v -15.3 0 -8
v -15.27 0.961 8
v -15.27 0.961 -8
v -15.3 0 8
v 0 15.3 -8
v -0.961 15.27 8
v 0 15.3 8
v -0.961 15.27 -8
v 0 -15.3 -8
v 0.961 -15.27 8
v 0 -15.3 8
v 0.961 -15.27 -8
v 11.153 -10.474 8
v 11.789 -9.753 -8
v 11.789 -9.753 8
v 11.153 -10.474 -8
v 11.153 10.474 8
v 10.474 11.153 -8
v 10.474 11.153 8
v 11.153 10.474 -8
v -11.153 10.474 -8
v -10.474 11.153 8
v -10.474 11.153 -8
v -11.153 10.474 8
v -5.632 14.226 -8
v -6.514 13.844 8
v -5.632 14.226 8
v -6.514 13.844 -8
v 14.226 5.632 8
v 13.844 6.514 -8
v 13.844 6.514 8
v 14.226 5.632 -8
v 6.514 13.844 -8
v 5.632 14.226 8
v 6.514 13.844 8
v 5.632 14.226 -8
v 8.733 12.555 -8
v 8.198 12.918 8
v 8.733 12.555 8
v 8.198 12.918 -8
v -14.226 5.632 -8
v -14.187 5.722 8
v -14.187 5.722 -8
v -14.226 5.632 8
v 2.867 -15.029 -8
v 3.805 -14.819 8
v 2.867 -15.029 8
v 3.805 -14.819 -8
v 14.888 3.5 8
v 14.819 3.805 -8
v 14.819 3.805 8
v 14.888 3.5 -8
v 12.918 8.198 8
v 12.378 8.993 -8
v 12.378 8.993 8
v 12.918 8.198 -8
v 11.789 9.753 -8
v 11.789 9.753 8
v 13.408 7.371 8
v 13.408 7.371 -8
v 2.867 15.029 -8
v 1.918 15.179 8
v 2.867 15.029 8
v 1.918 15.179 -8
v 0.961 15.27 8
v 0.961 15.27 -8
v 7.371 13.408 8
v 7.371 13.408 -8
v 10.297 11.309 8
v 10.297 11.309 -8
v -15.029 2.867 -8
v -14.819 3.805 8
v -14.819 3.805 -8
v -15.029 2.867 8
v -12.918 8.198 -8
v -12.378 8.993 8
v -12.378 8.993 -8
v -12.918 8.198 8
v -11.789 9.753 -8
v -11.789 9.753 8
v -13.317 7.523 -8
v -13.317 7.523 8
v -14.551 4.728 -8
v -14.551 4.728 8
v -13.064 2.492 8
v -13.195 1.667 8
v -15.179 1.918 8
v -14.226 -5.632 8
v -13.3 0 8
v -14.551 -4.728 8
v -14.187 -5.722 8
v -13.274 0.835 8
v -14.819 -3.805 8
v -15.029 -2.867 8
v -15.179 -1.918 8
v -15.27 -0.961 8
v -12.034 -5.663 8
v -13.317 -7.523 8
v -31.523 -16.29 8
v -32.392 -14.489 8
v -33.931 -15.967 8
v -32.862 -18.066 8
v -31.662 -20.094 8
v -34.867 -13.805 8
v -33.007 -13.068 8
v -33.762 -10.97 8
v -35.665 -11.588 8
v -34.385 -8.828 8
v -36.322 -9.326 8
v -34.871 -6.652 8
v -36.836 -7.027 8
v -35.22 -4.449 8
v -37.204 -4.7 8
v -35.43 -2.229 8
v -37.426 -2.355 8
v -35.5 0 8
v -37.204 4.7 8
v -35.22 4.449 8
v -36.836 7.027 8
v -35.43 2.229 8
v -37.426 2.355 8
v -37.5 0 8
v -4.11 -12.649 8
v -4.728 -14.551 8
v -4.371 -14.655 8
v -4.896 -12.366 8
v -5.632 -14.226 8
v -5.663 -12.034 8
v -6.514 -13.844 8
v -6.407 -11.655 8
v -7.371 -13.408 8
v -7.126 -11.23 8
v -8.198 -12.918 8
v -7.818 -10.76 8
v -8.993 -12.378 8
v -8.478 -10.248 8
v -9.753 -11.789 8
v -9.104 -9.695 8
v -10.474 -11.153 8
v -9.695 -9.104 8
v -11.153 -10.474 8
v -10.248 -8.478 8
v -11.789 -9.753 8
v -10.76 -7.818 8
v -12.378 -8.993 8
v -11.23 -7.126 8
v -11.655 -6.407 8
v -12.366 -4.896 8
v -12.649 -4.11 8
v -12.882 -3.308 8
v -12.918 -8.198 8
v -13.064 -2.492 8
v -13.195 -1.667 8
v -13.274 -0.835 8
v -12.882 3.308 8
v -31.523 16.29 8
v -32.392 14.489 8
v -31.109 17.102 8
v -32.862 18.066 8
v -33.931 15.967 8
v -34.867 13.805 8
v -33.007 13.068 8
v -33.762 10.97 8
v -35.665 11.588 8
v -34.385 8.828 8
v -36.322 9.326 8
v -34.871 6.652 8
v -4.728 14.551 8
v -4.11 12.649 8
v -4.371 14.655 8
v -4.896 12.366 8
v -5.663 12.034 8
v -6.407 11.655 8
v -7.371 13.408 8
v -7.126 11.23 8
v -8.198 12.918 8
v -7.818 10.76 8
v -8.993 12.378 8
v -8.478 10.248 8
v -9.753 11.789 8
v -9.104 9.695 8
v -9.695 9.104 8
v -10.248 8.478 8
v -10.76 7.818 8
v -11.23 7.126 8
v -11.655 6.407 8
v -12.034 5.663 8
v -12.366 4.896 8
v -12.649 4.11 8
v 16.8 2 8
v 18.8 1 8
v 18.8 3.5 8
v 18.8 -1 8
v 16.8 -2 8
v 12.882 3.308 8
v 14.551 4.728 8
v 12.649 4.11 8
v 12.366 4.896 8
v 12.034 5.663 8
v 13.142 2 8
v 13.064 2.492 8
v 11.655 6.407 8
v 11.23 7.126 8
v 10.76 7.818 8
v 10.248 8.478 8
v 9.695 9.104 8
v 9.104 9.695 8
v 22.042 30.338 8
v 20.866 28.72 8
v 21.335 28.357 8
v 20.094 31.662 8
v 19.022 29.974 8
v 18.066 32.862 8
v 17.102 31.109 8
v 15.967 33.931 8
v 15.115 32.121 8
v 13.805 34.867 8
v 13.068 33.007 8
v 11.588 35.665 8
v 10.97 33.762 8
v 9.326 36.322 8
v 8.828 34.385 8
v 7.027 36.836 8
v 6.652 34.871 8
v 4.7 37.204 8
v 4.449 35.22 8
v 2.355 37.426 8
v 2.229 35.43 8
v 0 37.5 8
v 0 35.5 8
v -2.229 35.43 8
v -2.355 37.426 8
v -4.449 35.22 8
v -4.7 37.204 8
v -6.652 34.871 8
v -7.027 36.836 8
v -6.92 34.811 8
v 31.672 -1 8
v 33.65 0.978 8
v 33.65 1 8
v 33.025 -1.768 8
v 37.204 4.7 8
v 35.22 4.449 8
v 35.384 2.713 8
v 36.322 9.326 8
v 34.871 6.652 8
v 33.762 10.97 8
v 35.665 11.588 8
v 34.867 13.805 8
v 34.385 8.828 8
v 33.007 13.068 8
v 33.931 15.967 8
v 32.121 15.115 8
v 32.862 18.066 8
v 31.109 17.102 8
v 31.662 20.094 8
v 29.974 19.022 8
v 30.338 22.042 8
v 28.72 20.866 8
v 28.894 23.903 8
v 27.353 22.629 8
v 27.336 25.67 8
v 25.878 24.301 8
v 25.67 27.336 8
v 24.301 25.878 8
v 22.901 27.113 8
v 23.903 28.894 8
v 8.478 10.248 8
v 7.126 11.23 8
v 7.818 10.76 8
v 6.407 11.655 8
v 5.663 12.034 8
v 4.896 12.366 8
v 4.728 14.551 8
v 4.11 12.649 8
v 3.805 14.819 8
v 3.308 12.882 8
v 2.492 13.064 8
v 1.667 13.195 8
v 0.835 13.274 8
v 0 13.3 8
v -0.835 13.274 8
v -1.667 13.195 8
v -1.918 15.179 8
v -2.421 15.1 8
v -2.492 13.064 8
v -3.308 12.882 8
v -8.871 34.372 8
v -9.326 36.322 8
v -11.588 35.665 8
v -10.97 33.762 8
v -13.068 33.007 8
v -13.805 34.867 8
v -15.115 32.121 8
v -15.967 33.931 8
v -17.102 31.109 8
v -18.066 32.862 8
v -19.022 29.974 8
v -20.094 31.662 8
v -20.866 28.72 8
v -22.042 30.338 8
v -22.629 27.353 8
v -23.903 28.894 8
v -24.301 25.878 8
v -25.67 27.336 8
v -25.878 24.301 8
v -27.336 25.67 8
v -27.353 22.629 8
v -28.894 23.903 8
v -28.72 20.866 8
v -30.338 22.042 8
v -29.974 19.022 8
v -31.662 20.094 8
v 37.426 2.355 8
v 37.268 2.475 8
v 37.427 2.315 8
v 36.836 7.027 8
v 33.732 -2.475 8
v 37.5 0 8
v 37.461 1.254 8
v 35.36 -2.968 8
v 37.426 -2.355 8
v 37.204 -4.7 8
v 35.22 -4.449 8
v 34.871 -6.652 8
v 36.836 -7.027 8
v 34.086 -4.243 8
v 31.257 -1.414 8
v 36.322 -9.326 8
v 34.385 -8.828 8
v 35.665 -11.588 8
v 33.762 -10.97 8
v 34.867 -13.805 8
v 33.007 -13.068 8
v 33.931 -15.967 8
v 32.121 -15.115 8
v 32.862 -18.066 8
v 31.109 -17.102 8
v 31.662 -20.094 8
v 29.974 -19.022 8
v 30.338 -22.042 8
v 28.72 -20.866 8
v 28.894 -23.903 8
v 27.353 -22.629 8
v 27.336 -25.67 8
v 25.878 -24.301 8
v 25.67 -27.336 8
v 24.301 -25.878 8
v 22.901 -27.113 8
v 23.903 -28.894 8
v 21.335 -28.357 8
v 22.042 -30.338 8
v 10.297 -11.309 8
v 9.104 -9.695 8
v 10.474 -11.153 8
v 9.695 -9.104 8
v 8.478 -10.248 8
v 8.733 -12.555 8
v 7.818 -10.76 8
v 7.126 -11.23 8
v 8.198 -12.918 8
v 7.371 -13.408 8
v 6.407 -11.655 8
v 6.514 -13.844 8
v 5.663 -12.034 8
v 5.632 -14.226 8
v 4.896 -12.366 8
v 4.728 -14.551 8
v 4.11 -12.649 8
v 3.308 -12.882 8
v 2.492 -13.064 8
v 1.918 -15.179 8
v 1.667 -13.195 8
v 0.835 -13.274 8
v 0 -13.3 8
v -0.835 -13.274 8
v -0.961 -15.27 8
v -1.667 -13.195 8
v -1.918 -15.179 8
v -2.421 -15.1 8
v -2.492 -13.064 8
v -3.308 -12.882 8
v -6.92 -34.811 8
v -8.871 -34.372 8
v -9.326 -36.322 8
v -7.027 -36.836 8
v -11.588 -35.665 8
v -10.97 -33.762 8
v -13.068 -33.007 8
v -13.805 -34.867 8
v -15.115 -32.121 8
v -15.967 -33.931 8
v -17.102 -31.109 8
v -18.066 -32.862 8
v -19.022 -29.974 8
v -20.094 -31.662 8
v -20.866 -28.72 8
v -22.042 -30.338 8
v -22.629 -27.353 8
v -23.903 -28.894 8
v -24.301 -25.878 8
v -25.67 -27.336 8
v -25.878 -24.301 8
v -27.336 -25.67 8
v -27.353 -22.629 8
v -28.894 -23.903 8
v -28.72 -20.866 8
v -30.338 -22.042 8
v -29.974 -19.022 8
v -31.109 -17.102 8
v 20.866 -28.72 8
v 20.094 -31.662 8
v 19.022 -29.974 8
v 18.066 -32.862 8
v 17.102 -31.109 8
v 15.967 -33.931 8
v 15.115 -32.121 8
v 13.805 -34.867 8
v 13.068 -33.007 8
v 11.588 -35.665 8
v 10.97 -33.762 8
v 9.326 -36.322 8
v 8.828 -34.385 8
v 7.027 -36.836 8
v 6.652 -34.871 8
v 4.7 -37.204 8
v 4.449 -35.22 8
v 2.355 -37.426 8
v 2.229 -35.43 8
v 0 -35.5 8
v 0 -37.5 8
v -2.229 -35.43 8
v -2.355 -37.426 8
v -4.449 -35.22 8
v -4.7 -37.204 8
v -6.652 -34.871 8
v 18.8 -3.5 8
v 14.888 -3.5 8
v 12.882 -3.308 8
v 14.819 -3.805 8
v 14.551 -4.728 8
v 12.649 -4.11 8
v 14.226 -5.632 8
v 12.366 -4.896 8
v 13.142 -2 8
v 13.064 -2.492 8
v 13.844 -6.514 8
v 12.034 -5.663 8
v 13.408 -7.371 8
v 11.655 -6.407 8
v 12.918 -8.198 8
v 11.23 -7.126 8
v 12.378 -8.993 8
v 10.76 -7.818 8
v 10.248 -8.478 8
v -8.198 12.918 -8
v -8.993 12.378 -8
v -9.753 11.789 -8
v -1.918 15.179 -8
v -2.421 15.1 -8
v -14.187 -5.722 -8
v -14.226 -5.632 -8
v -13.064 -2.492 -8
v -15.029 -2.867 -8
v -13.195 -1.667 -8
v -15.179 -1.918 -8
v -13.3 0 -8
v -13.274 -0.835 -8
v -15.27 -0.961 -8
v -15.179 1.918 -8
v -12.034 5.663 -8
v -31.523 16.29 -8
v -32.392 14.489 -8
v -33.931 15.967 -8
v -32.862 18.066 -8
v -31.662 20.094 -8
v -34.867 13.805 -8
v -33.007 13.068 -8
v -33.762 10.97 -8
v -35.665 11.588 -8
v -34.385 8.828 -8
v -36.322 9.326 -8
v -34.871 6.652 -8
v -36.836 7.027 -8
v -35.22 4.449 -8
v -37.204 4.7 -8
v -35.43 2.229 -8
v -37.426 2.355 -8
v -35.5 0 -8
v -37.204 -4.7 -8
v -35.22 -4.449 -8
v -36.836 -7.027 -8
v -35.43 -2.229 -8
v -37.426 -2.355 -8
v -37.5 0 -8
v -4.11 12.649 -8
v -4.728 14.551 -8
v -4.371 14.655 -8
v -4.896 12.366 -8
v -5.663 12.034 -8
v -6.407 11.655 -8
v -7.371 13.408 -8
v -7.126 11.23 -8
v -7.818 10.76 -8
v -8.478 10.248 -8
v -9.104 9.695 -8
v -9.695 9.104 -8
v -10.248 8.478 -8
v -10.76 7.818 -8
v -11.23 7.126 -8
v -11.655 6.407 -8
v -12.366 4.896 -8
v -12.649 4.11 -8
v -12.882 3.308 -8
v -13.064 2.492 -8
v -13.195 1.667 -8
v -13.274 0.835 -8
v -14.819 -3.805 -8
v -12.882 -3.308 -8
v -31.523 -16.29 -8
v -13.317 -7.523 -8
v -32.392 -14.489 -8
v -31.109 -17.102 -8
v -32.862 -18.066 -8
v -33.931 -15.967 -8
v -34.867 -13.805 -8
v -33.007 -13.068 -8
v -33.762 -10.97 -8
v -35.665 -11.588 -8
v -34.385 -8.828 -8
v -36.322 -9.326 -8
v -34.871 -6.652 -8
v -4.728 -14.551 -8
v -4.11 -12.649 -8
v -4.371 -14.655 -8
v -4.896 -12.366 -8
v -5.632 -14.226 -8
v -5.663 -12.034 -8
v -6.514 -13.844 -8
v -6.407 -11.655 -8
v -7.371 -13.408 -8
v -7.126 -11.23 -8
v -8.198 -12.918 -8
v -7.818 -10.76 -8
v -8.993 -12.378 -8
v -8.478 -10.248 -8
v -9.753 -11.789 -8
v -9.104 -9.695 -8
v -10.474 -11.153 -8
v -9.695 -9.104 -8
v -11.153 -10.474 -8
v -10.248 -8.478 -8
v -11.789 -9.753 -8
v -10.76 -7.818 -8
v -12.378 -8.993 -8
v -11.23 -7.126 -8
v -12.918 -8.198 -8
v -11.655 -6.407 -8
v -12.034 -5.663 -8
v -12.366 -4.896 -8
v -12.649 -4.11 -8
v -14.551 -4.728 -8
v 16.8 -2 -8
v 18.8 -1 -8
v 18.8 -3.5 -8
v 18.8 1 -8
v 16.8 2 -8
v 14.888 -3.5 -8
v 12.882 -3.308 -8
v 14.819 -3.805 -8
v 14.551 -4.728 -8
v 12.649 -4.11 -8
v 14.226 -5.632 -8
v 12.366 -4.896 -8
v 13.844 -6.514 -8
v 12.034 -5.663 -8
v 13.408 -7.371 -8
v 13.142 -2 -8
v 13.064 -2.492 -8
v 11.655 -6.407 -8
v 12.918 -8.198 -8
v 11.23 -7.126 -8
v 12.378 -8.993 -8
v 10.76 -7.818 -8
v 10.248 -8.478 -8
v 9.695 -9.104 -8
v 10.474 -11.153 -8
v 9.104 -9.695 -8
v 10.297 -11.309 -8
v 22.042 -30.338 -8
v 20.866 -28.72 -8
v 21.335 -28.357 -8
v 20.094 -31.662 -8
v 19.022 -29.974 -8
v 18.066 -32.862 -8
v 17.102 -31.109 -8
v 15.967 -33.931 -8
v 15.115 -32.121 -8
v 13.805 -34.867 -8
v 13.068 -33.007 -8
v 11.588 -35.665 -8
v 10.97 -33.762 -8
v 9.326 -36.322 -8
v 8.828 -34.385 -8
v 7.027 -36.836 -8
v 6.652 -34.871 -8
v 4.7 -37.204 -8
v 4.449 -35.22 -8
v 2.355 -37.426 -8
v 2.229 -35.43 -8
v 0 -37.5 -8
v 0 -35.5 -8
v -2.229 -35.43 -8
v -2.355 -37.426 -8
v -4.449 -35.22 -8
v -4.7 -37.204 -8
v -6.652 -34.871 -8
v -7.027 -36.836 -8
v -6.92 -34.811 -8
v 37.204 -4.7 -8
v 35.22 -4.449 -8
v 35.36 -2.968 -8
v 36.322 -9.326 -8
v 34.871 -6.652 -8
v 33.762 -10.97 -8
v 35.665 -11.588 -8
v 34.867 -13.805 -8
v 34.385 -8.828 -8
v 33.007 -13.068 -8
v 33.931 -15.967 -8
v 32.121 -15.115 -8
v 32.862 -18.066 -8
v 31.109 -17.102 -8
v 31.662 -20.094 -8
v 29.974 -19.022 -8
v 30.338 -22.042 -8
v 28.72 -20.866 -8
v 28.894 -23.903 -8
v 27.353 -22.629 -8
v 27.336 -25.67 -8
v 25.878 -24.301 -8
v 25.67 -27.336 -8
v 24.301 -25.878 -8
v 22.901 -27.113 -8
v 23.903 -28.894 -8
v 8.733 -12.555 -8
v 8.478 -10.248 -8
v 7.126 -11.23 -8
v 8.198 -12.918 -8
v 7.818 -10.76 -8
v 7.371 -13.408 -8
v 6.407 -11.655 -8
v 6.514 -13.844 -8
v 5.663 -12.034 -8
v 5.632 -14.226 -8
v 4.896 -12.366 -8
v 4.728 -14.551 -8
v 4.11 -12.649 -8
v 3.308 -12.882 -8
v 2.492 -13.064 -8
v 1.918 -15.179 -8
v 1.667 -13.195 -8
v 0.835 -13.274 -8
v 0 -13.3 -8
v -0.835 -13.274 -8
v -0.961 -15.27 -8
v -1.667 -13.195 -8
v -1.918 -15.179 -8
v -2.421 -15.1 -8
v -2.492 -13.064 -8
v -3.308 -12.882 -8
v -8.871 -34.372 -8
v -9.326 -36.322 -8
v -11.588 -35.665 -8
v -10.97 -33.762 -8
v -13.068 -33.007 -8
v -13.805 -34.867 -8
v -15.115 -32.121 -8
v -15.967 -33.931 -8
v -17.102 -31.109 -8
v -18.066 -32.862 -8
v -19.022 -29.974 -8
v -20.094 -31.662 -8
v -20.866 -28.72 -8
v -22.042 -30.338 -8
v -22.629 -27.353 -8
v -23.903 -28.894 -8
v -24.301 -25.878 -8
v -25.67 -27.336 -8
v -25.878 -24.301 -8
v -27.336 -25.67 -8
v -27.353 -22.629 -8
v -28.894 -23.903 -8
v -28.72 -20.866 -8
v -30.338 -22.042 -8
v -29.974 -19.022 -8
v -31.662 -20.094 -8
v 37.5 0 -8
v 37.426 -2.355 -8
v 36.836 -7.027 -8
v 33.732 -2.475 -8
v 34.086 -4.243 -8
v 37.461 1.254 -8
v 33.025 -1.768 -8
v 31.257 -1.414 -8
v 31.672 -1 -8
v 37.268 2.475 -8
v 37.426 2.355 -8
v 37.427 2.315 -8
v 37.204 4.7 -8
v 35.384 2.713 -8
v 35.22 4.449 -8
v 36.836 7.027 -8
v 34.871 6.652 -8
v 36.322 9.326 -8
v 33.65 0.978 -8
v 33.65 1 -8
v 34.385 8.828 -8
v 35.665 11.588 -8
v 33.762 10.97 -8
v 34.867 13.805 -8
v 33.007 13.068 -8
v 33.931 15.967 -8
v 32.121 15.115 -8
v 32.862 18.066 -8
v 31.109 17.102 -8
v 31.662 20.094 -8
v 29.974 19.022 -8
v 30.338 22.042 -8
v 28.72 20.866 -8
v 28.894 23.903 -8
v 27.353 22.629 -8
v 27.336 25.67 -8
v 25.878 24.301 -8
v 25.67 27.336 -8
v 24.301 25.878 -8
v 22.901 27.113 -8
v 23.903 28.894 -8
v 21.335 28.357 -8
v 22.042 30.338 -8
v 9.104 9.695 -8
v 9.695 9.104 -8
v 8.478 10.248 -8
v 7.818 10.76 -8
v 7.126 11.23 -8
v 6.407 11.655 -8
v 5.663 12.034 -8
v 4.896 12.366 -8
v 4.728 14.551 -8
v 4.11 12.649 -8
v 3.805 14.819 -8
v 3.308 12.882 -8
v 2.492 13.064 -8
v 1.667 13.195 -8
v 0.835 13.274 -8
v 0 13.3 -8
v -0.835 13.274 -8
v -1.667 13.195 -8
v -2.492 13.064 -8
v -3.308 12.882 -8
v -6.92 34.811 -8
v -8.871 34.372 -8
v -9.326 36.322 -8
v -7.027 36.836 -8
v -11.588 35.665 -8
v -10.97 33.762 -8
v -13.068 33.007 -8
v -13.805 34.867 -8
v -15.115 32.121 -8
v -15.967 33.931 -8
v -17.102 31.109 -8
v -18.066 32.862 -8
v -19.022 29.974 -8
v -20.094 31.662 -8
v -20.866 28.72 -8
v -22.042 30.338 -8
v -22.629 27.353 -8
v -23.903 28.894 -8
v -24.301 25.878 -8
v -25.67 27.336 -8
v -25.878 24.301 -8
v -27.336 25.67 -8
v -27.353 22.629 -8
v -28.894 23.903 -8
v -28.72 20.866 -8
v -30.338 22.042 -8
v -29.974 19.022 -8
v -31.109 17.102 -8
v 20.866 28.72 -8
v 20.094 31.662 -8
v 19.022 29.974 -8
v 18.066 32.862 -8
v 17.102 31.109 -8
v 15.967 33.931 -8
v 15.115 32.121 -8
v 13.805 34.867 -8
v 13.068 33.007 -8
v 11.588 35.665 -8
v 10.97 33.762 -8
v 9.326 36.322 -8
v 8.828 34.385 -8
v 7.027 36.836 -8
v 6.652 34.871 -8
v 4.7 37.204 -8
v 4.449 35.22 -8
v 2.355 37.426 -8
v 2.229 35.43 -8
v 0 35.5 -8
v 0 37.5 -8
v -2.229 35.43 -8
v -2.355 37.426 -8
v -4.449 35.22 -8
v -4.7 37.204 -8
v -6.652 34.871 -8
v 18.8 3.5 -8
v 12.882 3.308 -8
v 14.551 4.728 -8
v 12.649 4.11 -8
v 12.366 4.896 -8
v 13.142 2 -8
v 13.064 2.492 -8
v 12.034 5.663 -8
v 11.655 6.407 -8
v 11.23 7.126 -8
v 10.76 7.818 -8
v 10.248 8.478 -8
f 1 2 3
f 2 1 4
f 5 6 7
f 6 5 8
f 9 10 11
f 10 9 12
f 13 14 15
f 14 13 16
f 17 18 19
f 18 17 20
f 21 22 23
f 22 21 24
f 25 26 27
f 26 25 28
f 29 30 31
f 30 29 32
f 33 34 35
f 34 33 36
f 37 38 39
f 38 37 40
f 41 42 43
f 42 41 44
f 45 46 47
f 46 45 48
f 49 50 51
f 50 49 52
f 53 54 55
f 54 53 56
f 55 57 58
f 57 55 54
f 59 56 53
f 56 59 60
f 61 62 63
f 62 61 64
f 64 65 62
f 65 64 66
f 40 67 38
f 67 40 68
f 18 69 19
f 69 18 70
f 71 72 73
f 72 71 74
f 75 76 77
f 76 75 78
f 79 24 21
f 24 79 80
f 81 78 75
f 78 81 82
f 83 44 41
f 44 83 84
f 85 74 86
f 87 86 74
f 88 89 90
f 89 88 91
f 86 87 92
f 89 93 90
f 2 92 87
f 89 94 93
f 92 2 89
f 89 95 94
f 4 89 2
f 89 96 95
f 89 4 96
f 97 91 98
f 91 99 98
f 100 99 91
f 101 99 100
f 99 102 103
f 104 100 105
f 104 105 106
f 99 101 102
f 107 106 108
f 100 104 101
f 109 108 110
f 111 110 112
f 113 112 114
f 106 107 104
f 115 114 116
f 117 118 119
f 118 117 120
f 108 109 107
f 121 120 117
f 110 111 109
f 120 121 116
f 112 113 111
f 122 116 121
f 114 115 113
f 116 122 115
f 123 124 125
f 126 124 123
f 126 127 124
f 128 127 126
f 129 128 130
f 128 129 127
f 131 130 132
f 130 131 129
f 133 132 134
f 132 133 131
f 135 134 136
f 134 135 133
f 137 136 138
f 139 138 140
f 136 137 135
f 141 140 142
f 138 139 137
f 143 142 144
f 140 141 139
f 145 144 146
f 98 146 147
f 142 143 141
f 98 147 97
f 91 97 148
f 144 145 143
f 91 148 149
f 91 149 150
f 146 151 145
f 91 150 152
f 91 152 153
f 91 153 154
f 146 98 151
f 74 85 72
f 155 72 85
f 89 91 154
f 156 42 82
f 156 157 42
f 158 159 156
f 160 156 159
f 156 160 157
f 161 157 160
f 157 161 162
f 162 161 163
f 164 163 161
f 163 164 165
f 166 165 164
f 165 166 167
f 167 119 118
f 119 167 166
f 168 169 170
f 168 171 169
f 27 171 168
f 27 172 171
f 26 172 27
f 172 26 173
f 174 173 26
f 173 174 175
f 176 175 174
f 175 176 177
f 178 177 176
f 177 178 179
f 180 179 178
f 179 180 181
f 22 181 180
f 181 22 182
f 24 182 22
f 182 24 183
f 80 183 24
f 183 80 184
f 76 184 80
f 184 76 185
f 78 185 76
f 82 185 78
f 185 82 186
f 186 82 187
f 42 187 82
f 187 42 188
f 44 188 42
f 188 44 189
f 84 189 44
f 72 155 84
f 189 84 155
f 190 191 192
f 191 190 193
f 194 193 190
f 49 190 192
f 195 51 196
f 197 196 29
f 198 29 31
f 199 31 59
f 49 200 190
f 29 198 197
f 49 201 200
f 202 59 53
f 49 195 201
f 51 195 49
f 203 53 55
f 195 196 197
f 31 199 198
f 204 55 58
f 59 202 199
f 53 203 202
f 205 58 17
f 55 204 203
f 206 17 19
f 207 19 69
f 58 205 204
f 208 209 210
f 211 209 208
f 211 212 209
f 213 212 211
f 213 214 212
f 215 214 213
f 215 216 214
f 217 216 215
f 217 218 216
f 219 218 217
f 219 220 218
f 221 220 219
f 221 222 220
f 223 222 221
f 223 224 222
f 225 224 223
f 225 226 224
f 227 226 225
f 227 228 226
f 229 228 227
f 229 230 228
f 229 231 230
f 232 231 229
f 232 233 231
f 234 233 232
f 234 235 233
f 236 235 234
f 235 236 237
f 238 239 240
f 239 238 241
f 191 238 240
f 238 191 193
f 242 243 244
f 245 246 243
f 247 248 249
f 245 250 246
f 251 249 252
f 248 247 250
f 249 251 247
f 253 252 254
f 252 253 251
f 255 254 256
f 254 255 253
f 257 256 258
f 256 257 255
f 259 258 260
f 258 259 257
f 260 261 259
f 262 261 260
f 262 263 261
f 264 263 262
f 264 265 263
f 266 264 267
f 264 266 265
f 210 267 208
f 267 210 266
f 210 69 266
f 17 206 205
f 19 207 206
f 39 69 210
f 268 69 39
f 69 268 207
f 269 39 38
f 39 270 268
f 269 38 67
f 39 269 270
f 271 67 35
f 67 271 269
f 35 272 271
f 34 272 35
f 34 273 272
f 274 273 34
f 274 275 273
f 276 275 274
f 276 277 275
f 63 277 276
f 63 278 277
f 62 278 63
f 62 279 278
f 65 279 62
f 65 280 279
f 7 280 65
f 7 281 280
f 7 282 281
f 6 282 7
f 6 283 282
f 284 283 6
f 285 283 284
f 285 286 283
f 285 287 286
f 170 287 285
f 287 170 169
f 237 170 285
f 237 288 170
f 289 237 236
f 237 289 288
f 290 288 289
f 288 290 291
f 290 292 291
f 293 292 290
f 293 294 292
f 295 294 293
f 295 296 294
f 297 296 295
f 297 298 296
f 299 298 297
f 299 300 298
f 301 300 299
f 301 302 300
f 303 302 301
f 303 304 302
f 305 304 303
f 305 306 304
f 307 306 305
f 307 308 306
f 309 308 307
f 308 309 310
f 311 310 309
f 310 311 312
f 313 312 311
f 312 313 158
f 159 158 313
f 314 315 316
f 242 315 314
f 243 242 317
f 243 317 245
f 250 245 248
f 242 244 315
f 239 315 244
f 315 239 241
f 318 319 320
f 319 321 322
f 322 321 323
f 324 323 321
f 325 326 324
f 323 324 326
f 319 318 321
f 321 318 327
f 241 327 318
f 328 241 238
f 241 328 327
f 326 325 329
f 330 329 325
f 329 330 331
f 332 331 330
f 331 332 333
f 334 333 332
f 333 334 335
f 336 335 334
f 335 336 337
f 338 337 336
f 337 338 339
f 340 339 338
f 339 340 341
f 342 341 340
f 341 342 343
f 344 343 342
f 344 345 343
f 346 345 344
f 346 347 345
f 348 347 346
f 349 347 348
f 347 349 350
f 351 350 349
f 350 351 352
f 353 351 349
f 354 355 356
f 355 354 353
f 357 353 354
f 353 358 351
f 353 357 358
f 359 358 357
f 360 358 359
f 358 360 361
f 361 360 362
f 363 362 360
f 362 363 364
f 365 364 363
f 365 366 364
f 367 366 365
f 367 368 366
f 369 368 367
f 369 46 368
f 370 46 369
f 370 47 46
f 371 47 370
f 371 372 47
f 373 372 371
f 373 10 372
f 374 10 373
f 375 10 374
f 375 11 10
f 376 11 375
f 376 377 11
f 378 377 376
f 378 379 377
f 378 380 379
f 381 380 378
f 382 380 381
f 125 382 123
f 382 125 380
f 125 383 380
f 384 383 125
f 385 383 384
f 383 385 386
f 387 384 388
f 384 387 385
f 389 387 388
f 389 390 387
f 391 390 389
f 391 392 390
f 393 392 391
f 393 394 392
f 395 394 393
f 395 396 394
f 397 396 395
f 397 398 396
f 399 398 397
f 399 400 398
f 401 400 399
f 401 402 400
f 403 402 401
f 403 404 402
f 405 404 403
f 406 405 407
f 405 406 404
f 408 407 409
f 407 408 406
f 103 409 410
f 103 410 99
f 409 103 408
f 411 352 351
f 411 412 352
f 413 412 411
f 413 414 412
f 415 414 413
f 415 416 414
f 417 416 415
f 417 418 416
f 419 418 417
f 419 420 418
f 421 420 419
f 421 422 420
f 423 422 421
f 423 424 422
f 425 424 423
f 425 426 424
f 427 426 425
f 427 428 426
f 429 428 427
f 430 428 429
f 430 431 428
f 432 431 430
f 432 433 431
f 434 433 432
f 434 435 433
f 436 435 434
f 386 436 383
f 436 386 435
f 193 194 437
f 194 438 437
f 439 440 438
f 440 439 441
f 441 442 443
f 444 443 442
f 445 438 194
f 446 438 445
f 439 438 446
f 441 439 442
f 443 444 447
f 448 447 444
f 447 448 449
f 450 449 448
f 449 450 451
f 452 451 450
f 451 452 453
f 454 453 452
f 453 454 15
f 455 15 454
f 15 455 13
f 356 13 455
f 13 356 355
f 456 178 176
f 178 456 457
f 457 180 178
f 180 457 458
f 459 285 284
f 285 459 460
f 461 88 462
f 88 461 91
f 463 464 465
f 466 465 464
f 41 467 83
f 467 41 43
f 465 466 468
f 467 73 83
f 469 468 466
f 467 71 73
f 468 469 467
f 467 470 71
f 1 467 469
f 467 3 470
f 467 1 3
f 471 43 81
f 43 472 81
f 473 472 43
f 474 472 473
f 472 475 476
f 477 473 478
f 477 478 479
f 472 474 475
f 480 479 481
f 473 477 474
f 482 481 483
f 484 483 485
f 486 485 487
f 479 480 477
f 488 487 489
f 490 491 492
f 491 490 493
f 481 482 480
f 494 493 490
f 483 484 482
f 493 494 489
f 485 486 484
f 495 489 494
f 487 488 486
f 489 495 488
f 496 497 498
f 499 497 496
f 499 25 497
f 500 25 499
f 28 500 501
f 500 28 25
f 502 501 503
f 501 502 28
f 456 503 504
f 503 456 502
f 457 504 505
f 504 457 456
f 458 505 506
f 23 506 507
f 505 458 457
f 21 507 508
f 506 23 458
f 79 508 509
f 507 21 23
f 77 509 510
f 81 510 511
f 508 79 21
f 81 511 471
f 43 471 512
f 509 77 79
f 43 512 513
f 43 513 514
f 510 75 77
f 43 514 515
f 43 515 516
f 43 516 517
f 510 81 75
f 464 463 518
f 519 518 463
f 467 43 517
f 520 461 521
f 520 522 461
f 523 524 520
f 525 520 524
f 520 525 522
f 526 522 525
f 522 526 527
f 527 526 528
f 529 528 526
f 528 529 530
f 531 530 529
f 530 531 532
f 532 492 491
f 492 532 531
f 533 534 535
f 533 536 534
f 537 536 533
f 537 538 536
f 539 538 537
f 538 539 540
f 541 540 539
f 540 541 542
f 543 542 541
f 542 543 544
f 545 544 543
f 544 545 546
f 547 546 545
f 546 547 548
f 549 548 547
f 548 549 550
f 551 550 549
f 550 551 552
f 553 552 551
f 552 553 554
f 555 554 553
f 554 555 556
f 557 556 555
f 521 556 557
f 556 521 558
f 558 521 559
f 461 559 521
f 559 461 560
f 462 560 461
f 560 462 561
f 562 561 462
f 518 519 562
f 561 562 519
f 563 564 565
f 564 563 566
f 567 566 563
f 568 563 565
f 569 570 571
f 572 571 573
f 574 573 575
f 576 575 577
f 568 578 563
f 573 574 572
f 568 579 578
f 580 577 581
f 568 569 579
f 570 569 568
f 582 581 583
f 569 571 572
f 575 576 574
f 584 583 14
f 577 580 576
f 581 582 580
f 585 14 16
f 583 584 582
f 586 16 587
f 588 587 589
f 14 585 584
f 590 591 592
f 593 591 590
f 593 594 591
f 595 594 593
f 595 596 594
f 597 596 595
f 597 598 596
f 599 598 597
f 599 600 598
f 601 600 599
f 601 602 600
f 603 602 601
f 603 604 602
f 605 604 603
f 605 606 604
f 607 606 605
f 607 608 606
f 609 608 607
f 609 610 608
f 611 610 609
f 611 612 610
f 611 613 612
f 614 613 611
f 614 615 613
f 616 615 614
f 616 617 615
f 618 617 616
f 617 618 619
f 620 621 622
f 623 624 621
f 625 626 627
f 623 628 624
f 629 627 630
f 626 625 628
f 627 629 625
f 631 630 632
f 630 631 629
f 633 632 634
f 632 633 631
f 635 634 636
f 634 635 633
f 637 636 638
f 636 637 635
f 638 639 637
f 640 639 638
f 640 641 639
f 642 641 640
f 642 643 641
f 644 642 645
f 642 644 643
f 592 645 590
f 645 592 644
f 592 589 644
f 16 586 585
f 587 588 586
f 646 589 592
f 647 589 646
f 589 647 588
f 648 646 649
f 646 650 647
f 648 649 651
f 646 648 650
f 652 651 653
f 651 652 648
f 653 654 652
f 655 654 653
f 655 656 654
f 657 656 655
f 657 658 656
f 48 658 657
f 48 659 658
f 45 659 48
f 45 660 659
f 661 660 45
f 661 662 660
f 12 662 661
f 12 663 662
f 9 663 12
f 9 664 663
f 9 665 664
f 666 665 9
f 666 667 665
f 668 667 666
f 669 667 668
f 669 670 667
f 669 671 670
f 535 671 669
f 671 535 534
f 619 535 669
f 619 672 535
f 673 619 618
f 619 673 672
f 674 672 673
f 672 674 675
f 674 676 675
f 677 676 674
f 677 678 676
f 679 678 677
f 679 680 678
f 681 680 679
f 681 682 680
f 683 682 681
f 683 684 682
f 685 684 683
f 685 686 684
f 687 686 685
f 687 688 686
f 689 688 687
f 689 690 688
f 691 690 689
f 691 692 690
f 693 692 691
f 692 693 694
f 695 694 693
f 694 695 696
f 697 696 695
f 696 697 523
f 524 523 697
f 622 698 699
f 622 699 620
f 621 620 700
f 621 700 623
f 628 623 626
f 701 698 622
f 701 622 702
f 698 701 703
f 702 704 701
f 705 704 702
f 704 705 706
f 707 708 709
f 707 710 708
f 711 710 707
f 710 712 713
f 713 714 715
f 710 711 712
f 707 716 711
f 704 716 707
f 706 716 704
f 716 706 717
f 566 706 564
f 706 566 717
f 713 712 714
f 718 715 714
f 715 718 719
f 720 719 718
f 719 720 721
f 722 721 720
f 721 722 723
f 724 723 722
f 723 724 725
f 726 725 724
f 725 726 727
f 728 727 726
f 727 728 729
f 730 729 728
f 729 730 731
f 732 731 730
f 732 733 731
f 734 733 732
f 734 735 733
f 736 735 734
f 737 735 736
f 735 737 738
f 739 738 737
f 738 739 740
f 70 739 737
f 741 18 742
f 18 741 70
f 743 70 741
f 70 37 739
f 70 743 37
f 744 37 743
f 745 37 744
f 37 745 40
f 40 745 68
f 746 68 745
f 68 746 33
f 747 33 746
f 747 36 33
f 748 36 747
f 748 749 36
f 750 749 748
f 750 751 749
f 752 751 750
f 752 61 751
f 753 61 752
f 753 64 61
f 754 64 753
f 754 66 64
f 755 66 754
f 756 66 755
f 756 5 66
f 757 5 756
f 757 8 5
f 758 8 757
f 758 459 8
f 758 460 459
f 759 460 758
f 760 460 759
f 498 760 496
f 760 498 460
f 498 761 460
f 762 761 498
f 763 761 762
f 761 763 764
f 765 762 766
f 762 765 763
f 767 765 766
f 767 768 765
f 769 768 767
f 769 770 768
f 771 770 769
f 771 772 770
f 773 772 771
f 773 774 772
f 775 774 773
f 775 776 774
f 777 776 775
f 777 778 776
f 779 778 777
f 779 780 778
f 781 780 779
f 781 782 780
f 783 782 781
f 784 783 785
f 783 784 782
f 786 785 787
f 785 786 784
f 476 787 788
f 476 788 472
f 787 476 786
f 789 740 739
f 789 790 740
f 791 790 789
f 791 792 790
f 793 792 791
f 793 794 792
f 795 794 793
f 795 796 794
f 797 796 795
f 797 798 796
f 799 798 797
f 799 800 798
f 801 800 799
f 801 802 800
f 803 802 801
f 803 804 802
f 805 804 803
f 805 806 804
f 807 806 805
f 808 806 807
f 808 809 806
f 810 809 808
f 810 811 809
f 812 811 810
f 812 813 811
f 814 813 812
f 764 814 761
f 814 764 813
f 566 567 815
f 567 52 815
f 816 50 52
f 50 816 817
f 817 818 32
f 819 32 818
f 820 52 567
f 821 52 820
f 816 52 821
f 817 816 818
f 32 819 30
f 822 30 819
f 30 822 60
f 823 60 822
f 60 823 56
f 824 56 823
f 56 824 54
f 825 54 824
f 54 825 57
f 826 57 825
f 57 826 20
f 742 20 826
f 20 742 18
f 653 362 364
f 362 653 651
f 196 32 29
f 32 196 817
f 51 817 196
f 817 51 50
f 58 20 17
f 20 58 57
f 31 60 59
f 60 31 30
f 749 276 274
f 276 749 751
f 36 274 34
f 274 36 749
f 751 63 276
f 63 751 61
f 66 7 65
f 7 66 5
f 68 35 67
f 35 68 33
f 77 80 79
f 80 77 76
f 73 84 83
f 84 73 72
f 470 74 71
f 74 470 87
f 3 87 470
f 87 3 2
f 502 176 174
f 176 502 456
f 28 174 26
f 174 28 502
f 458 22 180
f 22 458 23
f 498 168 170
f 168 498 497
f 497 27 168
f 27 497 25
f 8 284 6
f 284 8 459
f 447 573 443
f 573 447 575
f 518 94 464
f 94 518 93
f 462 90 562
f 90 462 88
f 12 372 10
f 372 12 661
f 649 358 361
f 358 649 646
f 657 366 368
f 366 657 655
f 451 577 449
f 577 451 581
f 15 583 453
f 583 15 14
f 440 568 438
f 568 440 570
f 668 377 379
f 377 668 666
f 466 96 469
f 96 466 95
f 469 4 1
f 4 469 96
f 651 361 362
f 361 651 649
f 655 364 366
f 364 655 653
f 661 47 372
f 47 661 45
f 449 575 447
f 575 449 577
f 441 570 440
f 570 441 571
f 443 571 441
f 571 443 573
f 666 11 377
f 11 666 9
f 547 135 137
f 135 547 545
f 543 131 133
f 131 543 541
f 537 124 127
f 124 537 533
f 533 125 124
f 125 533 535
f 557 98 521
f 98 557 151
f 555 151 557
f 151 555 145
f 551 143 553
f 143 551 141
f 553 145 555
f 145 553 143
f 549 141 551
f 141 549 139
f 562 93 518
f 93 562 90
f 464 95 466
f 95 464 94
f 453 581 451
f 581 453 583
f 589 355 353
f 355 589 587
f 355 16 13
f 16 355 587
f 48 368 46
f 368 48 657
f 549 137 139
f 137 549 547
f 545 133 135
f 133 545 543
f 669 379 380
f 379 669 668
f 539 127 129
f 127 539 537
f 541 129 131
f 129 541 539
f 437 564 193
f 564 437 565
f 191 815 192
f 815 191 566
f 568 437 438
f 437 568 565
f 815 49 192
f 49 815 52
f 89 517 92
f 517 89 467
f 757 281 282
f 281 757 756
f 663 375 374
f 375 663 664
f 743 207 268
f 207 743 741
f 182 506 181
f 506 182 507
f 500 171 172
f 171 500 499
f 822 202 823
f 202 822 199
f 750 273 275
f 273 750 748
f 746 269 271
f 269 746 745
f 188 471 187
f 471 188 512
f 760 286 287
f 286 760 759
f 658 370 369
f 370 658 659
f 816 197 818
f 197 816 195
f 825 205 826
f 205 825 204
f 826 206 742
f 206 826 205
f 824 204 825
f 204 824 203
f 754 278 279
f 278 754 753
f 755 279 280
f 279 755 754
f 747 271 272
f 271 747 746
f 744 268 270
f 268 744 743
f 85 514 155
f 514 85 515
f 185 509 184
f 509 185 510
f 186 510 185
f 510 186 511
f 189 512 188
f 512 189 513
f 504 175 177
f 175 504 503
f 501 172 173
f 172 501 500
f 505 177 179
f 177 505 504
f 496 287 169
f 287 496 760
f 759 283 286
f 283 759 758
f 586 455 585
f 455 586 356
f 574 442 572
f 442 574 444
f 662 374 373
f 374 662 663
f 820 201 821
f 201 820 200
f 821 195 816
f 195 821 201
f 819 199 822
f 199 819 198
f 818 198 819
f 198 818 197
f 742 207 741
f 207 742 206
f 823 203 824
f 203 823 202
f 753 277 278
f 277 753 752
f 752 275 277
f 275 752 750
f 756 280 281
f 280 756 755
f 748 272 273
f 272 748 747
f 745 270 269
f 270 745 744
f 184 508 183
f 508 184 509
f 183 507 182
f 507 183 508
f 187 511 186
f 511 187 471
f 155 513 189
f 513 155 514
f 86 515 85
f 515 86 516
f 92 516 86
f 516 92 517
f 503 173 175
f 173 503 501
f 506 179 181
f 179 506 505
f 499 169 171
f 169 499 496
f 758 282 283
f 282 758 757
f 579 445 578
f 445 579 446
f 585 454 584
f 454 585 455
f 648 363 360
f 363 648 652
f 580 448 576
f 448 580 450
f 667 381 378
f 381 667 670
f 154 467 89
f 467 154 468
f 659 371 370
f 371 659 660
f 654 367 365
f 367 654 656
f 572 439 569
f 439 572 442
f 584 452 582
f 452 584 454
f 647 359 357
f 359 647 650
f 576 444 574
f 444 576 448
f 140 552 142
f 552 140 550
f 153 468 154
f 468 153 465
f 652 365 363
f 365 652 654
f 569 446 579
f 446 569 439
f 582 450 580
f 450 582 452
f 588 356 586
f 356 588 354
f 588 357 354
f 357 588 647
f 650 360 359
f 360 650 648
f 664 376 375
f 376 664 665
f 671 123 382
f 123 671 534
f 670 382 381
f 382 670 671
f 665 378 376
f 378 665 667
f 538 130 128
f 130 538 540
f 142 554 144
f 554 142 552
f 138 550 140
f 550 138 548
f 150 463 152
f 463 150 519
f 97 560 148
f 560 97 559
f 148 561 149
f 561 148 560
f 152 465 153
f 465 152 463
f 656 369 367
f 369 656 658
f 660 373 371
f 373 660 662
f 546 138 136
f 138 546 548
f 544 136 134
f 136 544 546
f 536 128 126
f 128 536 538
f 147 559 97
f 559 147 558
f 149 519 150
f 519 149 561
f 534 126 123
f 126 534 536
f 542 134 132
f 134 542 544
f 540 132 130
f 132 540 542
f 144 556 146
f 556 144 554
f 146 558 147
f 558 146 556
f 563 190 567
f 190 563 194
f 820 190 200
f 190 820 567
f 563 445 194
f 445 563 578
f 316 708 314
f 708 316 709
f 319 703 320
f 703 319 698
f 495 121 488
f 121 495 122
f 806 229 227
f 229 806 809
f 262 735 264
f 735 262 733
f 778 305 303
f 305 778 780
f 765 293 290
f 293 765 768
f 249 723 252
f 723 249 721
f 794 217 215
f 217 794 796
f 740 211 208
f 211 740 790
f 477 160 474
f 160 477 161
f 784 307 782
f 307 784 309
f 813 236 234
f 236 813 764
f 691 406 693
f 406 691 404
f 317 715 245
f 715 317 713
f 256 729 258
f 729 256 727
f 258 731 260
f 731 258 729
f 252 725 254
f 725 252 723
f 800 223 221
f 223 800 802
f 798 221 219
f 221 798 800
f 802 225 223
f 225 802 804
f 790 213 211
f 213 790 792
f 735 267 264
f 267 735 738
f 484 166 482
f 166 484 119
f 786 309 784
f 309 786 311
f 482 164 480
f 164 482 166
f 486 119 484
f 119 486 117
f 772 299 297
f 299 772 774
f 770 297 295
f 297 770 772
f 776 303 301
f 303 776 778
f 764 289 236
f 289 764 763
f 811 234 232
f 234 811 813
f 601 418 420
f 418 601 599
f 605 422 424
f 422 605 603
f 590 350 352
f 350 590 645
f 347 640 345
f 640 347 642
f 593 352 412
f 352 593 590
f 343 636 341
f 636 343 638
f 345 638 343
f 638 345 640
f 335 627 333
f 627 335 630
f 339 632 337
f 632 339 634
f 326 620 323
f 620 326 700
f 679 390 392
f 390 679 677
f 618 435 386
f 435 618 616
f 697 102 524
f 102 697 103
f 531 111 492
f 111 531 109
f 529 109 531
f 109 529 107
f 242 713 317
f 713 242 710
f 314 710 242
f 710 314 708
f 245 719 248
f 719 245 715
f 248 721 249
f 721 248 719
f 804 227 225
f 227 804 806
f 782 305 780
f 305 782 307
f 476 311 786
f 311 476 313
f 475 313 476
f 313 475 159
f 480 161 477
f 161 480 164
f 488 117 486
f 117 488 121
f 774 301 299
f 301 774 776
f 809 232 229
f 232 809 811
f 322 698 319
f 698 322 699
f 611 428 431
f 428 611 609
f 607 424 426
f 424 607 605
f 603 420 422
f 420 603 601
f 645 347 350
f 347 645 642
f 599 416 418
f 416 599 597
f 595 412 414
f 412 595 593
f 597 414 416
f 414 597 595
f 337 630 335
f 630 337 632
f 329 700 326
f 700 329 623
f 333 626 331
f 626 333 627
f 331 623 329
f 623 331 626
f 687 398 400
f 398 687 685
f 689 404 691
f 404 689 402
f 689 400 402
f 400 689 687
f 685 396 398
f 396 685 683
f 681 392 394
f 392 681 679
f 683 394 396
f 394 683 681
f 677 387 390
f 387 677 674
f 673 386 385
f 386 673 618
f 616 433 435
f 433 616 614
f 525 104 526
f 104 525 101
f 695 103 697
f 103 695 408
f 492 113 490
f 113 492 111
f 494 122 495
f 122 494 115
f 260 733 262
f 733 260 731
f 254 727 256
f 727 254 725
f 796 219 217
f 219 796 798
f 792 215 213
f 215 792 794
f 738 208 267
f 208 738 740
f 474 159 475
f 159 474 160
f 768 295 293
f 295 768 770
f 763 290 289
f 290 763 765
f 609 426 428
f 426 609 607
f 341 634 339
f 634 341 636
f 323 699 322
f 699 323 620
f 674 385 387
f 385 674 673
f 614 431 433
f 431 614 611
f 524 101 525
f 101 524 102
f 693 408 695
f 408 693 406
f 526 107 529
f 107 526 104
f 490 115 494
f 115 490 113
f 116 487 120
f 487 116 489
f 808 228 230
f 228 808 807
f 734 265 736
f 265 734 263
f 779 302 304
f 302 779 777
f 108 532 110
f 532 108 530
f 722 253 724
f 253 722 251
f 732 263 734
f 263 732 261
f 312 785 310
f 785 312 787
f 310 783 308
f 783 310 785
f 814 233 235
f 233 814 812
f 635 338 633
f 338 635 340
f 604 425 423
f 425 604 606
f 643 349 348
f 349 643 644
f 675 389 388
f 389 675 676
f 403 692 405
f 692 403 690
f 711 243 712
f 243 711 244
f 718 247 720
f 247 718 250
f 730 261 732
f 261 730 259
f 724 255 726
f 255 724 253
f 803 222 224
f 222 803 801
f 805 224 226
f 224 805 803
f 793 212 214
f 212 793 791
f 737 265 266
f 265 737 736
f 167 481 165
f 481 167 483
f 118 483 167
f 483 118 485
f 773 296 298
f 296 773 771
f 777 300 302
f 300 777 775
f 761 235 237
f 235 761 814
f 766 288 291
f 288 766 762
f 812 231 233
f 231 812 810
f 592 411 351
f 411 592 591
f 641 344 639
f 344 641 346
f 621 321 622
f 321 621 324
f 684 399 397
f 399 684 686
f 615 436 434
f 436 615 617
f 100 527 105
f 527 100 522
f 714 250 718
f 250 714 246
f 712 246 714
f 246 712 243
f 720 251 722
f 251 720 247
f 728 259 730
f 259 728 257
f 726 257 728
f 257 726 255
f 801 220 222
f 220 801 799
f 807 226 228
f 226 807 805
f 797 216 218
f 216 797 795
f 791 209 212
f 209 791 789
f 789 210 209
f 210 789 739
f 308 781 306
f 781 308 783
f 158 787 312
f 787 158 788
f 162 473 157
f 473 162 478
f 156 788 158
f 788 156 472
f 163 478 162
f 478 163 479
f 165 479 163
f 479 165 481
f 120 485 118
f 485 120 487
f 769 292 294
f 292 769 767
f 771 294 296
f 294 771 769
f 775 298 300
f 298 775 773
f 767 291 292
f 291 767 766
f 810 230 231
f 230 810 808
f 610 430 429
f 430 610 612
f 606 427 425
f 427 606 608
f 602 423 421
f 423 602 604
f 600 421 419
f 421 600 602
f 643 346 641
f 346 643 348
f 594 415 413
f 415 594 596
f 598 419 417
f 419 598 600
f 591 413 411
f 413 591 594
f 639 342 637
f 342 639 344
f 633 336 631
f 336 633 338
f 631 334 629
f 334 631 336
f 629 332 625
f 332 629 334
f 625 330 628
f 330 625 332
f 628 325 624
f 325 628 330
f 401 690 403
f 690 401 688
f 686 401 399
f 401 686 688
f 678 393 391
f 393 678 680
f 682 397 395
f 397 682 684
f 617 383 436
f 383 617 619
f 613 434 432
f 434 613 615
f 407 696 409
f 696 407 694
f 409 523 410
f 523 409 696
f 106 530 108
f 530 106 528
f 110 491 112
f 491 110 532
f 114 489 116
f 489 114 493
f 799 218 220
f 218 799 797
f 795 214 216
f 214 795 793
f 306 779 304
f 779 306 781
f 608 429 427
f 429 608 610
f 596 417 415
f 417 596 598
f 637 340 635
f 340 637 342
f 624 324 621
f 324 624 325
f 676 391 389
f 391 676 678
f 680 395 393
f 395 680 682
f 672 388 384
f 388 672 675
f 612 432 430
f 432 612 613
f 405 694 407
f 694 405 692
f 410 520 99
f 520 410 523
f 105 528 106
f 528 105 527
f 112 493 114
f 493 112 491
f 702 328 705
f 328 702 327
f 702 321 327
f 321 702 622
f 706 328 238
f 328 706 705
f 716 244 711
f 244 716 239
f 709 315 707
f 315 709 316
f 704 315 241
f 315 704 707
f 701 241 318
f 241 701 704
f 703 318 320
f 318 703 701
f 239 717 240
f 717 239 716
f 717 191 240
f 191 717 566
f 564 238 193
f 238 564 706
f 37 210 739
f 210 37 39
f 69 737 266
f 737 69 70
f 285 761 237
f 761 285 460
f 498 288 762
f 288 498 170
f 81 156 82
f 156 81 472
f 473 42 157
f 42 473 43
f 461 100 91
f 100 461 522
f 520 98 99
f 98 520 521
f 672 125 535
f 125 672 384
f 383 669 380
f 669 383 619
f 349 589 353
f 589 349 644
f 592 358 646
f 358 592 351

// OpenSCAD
time=0;

module core (outerWidth) {
	coreH = 16;
	innerWidth = 15.3;
	outerWidth = outerWidth / 2;
    $fn = 100;
    
	module cyl (R, pad = 0) {
		cylinder(r = R, h = coreH + pad, center = true);
	}

	module inner_core_shape (coreR, trans, cubeW, cubeL, pad = 0) {
		union () {
			cyl(coreR, pad);
			translate([trans, 0, 0]) {
				cube([cubeW, cubeL, coreH + pad], center = true);
			}
		}
	}

	module inner_core () {
		difference () {
			inner_core_shape(innerWidth, innerWidth + .5, 6, 7);
			inner_core_shape(innerWidth - 2, innerWidth - .5, 4, 4, 2);
		}
	}
	module clip () {
		translate([outerWidth - 2, 0, 0]) {
			rotate(45, [0, 0, 1]){
				cube([6, 1, coreH], center = true);
			}
		}
	}

	module outer_clip () {
		translate([outerWidth - 2, 0, 0]) {
			difference() {
				rotate(45, [0, 0, 1]){
					cube([8, 4, coreH], center = true);
				}
				translate([3.9, 0, 0]) {
					cube([6, 8, coreH + 1], center = true);
				}
			}
		}
	}

	module outer_core () {
		difference () {
			union () {
				difference () {
					cyl(outerWidth);
					cyl(outerWidth - 2, 1);
				}
				outer_clip();
			}
			clip();
		}
	}

	module supports (x) {
		for (i = [0 : x]) {
			rotate ([0, 0, i * 360 / (x + 1)]) {
				if (i == 0) {
					translate ([innerWidth + ((outerWidth - innerWidth) / 2) - 1, 0, 0]) {
						cube([outerWidth - innerWidth - 5.7, 2, coreH] ,center = true);
					}
				} else {
					translate ([innerWidth + ((outerWidth - innerWidth) / 2) - 1, 0, 0]) {
						cube([outerWidth - innerWidth - 1, 2, coreH] ,center = true);
					}
				}
			}
		}
	}

	union () {
		inner_core();
		outer_core();
		supports(6);
	}	
}

rotate([0,0, time]) core(75);
